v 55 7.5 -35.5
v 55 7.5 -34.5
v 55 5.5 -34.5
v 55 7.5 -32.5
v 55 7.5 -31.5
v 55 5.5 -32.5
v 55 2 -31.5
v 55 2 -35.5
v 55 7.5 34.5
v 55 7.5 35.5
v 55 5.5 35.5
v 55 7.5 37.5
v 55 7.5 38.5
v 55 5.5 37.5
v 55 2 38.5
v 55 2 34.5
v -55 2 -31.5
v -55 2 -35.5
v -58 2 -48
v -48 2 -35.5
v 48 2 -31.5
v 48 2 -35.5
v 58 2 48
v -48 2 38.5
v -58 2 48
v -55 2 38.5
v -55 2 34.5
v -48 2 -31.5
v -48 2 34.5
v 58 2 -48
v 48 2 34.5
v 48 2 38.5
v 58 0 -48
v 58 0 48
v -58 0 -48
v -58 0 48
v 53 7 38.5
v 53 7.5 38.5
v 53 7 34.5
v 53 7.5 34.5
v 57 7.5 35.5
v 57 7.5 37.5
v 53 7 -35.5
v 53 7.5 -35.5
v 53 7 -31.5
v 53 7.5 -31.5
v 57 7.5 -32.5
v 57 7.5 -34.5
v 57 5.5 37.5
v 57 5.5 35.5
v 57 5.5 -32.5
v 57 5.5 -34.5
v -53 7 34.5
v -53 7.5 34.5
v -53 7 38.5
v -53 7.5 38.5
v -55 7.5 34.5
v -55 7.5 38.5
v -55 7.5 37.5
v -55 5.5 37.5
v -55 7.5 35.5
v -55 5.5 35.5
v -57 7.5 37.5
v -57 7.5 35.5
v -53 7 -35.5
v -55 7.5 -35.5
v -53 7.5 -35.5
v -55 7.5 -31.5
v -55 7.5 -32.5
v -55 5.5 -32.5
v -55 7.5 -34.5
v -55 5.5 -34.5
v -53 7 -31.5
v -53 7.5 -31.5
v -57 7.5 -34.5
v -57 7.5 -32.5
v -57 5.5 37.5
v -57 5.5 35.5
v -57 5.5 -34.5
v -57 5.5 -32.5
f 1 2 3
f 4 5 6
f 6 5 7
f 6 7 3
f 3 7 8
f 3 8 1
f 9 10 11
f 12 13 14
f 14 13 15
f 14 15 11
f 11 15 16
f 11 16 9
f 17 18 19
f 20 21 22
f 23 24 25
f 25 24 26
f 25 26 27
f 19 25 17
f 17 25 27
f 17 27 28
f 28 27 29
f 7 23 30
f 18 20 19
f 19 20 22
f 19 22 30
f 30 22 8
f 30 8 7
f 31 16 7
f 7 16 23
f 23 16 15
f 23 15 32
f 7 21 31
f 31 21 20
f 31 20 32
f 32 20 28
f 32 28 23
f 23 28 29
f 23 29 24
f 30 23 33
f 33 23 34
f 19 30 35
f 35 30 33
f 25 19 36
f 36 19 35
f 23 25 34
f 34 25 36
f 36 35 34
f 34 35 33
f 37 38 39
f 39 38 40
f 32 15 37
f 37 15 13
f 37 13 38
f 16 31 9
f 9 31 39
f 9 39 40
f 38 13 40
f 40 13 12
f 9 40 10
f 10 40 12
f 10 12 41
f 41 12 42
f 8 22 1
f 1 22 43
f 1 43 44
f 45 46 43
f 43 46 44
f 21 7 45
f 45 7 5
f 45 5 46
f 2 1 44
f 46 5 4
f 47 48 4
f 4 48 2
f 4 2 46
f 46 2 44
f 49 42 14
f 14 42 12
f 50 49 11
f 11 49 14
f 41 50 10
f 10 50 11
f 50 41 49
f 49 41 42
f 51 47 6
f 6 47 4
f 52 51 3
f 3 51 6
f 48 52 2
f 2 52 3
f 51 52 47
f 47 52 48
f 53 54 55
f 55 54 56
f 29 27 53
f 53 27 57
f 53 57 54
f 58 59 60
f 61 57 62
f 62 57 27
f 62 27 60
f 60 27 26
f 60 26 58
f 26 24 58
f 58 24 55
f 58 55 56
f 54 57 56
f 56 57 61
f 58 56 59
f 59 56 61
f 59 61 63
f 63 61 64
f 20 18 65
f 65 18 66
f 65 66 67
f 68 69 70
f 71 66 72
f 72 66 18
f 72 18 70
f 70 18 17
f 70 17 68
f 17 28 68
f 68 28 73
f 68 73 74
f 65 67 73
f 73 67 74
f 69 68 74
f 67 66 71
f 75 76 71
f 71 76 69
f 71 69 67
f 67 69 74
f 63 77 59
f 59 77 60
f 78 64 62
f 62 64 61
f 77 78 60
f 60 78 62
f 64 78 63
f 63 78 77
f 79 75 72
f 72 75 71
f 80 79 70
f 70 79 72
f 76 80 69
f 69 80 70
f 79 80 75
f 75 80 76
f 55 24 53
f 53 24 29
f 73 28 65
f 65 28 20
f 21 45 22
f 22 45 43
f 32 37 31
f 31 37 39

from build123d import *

# Parameters (mm, degrees)
SKETCH1_W           = 116
SKETCH1_H           = 96
BOSS_EXTRUDE1_DEPTH = 2
SKETCH2_W           = 2
SKETCH2_H           = 4
BOSS_EXTRUDE2_DEPTH = 5.5
SKETCH3_W           = 2
SKETCH3_H           = 2
BOSS_EXTRUDE3_DEPTH = 2
CHAMFER2_SIZE       = 5


with BuildPart() as part:
    # Sketch1 → Boss-Extrude1 (new body)
    with BuildSketch(Plane(origin=(0, 0, 0), x_dir=(1, 0, 0), z_dir=(0, 1, 0))):
        Rectangle(SKETCH1_W, SKETCH1_H)
    extrude(amount=BOSS_EXTRUDE1_DEPTH)

    # Sketch2 → Boss-Extrude2 (add)
    with BuildSketch(Plane(origin=(0, 2, 0), x_dir=(1, 0, 0), z_dir=(0, 1, 0))):
        with Locations((54, -36.5)):
            Rectangle(SKETCH2_W, SKETCH2_H)
        with Locations((54, 33.5)):
            Rectangle(SKETCH2_W, SKETCH2_H)
    boss_extrude2 = extrude(amount=BOSS_EXTRUDE2_DEPTH)

    # Sketch3 → Boss-Extrude3 (add)
    with BuildSketch(Plane(origin=(55, 0, 0), x_dir=(0, 0, -1), z_dir=(1, 0, 0))):
        with Locations((-36.5, 6.5)):
            Rectangle(SKETCH3_W, SKETCH3_H)
        with Locations((33.5, 6.5)):
            Rectangle(SKETCH3_W, SKETCH3_H)
    boss_extrude3 = extrude(amount=BOSS_EXTRUDE3_DEPTH)

    # Mirror1: Boss-Extrude2, Boss-Extrude3 across plane
    add(boss_extrude2.mirror(Plane(origin=(0, 0, 0), x_dir=(0, 0, 1), z_dir=(1, 0, 0))))
    add(boss_extrude3.mirror(Plane(origin=(0, 0, 0), x_dir=(0, 0, 1), z_dir=(1, 0, 0))))

    # Chamfer2
    chamfer2_edges = [part.edges().sort_by_distance(p)[0] for p in [
        (53, 2, 36.5),
        (53, 2, -33.5),
        (-53, 2, 36.5),
        (-53, 2, -33.5),
    ]]
    chamfer(chamfer2_edges, length=CHAMFER2_SIZE)


solid = part.part
